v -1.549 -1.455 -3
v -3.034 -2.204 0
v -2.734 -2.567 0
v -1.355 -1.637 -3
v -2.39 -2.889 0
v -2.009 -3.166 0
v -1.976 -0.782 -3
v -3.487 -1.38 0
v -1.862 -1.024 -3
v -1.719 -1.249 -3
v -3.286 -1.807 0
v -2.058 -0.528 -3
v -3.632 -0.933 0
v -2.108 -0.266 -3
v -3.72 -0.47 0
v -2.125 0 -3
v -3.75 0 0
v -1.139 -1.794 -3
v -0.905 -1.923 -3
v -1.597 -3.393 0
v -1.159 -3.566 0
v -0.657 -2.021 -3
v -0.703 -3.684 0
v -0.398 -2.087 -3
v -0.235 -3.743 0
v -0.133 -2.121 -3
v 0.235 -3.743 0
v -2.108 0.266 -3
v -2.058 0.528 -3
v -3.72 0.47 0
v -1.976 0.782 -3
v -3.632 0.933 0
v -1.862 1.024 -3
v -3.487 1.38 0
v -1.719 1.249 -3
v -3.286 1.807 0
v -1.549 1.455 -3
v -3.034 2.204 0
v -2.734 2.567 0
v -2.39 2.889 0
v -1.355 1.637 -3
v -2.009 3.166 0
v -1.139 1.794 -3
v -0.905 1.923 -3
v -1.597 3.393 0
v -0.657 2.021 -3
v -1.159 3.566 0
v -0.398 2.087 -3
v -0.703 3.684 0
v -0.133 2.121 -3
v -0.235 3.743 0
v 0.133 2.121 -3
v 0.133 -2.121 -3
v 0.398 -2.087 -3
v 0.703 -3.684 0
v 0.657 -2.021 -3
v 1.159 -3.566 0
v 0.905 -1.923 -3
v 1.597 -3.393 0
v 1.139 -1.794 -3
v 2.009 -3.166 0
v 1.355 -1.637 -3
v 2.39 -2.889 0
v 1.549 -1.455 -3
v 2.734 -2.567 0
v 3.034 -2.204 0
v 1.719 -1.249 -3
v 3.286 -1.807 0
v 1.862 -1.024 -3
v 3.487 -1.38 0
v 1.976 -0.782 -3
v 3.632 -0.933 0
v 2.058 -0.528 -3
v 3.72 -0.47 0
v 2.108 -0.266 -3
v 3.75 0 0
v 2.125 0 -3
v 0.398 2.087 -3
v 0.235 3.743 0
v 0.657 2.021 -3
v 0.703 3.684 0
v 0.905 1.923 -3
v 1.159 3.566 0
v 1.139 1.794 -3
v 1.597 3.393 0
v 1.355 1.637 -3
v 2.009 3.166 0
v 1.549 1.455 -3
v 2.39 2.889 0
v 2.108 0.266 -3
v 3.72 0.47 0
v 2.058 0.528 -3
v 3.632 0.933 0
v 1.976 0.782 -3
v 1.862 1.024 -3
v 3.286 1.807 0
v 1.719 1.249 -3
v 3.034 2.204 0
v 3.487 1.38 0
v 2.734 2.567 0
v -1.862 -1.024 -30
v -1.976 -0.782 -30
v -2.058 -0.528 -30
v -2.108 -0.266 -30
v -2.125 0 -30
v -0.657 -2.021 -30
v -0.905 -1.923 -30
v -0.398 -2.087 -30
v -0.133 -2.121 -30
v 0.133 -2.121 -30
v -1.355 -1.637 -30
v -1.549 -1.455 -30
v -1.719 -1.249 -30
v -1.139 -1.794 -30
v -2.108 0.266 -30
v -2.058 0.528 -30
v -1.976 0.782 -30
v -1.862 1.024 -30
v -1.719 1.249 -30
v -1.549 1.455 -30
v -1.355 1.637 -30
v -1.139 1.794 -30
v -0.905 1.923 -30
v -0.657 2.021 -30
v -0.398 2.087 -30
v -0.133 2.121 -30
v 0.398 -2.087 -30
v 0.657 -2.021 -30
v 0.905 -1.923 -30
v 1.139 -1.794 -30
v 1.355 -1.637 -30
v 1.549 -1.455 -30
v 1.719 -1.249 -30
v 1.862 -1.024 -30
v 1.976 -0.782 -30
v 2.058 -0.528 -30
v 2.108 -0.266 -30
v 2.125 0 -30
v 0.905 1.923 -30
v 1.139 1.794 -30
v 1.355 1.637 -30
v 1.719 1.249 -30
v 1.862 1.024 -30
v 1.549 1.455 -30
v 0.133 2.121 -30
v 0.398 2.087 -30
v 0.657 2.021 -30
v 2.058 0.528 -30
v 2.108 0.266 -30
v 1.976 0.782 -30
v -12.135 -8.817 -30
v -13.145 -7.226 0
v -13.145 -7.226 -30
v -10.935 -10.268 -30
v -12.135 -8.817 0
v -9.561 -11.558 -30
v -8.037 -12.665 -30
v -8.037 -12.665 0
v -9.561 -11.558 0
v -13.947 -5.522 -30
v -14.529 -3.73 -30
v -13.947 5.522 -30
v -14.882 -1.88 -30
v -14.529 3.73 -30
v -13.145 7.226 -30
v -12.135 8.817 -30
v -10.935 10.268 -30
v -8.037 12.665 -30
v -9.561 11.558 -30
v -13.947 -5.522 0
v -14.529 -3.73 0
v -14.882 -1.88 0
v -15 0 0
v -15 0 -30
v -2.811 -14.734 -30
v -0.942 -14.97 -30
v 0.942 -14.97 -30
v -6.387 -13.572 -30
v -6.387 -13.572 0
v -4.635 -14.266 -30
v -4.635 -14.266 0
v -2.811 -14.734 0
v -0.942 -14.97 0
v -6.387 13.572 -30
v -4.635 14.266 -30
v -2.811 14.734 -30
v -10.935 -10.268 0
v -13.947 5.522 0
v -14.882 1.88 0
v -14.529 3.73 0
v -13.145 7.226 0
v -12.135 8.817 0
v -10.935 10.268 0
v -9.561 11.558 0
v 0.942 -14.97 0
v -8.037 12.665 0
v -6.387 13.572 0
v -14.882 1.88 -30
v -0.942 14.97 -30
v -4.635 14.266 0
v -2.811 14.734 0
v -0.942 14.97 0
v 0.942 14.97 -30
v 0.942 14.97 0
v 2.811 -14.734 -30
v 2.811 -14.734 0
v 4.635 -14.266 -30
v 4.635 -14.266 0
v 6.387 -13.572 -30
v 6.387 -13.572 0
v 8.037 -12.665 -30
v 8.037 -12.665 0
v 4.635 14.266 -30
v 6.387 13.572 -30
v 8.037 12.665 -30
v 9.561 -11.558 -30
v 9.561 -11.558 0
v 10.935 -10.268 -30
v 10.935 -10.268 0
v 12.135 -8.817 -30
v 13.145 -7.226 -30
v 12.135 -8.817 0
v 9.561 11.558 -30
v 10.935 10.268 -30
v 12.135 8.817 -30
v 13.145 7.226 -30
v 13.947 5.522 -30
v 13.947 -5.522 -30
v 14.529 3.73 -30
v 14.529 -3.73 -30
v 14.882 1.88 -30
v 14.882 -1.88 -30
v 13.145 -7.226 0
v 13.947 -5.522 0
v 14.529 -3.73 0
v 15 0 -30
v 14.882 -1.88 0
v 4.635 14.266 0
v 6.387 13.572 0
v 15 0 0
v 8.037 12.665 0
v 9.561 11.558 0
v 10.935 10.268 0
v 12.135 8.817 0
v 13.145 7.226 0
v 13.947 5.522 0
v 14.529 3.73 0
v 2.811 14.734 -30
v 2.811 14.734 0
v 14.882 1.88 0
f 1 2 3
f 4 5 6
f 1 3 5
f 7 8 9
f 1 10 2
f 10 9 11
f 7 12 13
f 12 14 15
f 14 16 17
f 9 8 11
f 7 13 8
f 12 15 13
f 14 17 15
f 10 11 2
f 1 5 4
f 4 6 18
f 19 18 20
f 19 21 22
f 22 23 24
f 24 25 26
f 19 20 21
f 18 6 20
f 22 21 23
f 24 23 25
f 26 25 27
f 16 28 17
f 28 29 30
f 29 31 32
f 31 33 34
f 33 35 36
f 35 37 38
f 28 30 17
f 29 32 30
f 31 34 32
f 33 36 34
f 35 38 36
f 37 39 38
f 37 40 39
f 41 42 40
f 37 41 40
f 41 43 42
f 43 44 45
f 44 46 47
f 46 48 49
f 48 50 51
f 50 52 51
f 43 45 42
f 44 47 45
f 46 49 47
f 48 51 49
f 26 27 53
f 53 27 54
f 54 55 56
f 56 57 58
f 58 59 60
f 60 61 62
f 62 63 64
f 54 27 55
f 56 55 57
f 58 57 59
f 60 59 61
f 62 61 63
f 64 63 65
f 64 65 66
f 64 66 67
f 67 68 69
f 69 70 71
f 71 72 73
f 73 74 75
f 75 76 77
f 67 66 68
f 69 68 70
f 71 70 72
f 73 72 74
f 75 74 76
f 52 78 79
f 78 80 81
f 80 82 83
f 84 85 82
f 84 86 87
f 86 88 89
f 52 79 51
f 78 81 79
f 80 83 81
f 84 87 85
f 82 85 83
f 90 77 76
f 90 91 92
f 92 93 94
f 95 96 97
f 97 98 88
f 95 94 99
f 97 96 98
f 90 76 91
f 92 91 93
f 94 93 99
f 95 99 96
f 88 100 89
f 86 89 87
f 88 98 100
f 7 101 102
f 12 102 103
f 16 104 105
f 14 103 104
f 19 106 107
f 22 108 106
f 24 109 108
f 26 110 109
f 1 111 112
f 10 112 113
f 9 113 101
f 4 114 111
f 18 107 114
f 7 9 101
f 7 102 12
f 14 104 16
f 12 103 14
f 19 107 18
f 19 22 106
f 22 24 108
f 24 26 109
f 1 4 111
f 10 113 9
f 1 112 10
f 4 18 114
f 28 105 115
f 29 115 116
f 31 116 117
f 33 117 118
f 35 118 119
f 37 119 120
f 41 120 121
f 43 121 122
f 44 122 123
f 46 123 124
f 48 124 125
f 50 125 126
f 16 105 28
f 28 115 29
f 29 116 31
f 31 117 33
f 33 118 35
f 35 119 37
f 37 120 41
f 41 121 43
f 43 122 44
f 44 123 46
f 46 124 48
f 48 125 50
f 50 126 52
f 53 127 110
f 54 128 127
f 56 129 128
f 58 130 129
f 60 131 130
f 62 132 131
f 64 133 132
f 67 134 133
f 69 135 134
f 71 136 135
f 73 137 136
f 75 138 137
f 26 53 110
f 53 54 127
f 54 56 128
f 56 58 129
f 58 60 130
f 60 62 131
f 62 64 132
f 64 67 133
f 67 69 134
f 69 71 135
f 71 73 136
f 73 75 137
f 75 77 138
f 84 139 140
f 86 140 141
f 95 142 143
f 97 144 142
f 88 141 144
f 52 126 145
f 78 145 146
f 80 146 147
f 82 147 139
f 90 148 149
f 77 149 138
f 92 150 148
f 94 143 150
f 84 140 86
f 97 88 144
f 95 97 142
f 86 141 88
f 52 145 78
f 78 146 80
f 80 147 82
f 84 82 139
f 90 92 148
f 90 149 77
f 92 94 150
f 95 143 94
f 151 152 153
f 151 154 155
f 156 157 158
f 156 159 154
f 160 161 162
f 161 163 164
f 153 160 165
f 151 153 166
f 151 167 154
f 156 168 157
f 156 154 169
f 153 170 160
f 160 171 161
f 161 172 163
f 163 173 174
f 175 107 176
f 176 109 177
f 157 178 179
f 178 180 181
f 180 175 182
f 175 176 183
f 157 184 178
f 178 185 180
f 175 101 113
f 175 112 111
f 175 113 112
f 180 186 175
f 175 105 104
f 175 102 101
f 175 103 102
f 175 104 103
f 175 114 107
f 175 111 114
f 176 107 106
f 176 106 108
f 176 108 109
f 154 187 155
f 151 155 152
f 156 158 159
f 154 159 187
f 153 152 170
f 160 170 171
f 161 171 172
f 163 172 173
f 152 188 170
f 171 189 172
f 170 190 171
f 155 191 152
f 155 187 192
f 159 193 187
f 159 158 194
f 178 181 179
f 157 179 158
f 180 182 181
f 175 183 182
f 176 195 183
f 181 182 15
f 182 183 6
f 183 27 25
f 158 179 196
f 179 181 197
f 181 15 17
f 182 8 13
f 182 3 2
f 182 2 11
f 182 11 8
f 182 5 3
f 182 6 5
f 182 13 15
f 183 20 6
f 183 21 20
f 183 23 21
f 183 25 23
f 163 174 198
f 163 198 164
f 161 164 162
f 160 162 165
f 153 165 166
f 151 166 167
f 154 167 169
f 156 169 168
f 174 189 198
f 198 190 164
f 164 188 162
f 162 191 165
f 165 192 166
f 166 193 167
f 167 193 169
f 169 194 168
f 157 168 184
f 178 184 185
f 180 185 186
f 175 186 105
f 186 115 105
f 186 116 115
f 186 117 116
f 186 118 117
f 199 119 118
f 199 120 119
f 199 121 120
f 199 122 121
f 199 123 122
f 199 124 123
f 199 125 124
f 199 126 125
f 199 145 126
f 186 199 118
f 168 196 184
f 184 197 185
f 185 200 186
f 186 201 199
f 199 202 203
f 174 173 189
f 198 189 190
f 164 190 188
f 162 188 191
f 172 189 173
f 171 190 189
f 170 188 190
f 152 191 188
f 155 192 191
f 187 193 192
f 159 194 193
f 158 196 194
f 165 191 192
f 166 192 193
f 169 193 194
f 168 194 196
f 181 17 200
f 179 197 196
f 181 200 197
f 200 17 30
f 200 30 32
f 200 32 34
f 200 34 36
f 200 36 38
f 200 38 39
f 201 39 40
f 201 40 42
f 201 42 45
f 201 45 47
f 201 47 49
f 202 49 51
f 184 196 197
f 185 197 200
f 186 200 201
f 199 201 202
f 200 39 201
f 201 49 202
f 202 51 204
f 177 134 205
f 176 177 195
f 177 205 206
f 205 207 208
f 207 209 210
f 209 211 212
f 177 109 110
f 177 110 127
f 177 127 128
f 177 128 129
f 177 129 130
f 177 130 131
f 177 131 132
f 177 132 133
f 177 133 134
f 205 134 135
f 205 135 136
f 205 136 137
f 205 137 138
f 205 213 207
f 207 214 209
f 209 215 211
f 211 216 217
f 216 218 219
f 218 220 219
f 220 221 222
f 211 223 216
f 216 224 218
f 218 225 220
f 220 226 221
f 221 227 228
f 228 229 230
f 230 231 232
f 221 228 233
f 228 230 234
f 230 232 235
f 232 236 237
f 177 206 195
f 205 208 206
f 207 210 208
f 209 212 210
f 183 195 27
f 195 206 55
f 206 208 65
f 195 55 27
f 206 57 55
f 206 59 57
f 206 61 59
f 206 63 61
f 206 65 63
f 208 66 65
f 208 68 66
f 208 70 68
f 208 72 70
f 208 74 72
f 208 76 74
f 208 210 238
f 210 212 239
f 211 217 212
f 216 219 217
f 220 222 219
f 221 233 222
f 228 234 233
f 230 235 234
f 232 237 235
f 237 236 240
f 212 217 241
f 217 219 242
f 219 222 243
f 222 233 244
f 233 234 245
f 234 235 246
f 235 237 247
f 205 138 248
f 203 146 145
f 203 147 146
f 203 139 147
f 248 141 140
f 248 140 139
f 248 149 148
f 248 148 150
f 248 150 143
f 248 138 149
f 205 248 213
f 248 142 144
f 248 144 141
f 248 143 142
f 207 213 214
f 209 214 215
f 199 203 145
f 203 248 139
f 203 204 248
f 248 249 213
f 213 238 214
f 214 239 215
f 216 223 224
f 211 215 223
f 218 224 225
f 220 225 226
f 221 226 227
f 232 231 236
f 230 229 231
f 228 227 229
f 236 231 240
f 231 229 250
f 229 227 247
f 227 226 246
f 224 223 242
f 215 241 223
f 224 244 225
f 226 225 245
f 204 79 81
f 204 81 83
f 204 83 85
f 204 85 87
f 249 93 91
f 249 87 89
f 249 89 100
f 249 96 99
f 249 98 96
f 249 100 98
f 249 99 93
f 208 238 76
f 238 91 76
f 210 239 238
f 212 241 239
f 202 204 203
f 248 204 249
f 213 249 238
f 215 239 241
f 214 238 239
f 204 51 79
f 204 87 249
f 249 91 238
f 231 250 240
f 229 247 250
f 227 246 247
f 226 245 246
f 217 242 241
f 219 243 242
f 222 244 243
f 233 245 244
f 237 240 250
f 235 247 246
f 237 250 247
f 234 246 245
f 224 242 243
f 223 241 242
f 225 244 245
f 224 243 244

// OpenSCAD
$fn = 50;

difference() {
	union() {
		translate(v = [0, 0, -30.0]) {
			cylinder(h = 30, r = 15.0);
		}
	}
	union() {
		translate(v = [0, 0, 0]) {
			rotate(a = [0, 0, 0]) {
				difference() {
					union() {
						translate(v = [0, 0, -33.0]) {
							cylinder(h = 33, r = 2.0);
						}
						translate(v = [0, 0, -3]) {
							cylinder(h = 3, r1 = 2.125, r2 = 3.75);
						}
						translate(v = [0, 0, -33.0]) {
							cylinder(h = 33, r = 2.125);
						}
						translate(v = [0, 0, -33.0]) {
							cylinder(h = 33, r = 2.0);
						}
					}
					union();
				}
			}
		}
	}
}
